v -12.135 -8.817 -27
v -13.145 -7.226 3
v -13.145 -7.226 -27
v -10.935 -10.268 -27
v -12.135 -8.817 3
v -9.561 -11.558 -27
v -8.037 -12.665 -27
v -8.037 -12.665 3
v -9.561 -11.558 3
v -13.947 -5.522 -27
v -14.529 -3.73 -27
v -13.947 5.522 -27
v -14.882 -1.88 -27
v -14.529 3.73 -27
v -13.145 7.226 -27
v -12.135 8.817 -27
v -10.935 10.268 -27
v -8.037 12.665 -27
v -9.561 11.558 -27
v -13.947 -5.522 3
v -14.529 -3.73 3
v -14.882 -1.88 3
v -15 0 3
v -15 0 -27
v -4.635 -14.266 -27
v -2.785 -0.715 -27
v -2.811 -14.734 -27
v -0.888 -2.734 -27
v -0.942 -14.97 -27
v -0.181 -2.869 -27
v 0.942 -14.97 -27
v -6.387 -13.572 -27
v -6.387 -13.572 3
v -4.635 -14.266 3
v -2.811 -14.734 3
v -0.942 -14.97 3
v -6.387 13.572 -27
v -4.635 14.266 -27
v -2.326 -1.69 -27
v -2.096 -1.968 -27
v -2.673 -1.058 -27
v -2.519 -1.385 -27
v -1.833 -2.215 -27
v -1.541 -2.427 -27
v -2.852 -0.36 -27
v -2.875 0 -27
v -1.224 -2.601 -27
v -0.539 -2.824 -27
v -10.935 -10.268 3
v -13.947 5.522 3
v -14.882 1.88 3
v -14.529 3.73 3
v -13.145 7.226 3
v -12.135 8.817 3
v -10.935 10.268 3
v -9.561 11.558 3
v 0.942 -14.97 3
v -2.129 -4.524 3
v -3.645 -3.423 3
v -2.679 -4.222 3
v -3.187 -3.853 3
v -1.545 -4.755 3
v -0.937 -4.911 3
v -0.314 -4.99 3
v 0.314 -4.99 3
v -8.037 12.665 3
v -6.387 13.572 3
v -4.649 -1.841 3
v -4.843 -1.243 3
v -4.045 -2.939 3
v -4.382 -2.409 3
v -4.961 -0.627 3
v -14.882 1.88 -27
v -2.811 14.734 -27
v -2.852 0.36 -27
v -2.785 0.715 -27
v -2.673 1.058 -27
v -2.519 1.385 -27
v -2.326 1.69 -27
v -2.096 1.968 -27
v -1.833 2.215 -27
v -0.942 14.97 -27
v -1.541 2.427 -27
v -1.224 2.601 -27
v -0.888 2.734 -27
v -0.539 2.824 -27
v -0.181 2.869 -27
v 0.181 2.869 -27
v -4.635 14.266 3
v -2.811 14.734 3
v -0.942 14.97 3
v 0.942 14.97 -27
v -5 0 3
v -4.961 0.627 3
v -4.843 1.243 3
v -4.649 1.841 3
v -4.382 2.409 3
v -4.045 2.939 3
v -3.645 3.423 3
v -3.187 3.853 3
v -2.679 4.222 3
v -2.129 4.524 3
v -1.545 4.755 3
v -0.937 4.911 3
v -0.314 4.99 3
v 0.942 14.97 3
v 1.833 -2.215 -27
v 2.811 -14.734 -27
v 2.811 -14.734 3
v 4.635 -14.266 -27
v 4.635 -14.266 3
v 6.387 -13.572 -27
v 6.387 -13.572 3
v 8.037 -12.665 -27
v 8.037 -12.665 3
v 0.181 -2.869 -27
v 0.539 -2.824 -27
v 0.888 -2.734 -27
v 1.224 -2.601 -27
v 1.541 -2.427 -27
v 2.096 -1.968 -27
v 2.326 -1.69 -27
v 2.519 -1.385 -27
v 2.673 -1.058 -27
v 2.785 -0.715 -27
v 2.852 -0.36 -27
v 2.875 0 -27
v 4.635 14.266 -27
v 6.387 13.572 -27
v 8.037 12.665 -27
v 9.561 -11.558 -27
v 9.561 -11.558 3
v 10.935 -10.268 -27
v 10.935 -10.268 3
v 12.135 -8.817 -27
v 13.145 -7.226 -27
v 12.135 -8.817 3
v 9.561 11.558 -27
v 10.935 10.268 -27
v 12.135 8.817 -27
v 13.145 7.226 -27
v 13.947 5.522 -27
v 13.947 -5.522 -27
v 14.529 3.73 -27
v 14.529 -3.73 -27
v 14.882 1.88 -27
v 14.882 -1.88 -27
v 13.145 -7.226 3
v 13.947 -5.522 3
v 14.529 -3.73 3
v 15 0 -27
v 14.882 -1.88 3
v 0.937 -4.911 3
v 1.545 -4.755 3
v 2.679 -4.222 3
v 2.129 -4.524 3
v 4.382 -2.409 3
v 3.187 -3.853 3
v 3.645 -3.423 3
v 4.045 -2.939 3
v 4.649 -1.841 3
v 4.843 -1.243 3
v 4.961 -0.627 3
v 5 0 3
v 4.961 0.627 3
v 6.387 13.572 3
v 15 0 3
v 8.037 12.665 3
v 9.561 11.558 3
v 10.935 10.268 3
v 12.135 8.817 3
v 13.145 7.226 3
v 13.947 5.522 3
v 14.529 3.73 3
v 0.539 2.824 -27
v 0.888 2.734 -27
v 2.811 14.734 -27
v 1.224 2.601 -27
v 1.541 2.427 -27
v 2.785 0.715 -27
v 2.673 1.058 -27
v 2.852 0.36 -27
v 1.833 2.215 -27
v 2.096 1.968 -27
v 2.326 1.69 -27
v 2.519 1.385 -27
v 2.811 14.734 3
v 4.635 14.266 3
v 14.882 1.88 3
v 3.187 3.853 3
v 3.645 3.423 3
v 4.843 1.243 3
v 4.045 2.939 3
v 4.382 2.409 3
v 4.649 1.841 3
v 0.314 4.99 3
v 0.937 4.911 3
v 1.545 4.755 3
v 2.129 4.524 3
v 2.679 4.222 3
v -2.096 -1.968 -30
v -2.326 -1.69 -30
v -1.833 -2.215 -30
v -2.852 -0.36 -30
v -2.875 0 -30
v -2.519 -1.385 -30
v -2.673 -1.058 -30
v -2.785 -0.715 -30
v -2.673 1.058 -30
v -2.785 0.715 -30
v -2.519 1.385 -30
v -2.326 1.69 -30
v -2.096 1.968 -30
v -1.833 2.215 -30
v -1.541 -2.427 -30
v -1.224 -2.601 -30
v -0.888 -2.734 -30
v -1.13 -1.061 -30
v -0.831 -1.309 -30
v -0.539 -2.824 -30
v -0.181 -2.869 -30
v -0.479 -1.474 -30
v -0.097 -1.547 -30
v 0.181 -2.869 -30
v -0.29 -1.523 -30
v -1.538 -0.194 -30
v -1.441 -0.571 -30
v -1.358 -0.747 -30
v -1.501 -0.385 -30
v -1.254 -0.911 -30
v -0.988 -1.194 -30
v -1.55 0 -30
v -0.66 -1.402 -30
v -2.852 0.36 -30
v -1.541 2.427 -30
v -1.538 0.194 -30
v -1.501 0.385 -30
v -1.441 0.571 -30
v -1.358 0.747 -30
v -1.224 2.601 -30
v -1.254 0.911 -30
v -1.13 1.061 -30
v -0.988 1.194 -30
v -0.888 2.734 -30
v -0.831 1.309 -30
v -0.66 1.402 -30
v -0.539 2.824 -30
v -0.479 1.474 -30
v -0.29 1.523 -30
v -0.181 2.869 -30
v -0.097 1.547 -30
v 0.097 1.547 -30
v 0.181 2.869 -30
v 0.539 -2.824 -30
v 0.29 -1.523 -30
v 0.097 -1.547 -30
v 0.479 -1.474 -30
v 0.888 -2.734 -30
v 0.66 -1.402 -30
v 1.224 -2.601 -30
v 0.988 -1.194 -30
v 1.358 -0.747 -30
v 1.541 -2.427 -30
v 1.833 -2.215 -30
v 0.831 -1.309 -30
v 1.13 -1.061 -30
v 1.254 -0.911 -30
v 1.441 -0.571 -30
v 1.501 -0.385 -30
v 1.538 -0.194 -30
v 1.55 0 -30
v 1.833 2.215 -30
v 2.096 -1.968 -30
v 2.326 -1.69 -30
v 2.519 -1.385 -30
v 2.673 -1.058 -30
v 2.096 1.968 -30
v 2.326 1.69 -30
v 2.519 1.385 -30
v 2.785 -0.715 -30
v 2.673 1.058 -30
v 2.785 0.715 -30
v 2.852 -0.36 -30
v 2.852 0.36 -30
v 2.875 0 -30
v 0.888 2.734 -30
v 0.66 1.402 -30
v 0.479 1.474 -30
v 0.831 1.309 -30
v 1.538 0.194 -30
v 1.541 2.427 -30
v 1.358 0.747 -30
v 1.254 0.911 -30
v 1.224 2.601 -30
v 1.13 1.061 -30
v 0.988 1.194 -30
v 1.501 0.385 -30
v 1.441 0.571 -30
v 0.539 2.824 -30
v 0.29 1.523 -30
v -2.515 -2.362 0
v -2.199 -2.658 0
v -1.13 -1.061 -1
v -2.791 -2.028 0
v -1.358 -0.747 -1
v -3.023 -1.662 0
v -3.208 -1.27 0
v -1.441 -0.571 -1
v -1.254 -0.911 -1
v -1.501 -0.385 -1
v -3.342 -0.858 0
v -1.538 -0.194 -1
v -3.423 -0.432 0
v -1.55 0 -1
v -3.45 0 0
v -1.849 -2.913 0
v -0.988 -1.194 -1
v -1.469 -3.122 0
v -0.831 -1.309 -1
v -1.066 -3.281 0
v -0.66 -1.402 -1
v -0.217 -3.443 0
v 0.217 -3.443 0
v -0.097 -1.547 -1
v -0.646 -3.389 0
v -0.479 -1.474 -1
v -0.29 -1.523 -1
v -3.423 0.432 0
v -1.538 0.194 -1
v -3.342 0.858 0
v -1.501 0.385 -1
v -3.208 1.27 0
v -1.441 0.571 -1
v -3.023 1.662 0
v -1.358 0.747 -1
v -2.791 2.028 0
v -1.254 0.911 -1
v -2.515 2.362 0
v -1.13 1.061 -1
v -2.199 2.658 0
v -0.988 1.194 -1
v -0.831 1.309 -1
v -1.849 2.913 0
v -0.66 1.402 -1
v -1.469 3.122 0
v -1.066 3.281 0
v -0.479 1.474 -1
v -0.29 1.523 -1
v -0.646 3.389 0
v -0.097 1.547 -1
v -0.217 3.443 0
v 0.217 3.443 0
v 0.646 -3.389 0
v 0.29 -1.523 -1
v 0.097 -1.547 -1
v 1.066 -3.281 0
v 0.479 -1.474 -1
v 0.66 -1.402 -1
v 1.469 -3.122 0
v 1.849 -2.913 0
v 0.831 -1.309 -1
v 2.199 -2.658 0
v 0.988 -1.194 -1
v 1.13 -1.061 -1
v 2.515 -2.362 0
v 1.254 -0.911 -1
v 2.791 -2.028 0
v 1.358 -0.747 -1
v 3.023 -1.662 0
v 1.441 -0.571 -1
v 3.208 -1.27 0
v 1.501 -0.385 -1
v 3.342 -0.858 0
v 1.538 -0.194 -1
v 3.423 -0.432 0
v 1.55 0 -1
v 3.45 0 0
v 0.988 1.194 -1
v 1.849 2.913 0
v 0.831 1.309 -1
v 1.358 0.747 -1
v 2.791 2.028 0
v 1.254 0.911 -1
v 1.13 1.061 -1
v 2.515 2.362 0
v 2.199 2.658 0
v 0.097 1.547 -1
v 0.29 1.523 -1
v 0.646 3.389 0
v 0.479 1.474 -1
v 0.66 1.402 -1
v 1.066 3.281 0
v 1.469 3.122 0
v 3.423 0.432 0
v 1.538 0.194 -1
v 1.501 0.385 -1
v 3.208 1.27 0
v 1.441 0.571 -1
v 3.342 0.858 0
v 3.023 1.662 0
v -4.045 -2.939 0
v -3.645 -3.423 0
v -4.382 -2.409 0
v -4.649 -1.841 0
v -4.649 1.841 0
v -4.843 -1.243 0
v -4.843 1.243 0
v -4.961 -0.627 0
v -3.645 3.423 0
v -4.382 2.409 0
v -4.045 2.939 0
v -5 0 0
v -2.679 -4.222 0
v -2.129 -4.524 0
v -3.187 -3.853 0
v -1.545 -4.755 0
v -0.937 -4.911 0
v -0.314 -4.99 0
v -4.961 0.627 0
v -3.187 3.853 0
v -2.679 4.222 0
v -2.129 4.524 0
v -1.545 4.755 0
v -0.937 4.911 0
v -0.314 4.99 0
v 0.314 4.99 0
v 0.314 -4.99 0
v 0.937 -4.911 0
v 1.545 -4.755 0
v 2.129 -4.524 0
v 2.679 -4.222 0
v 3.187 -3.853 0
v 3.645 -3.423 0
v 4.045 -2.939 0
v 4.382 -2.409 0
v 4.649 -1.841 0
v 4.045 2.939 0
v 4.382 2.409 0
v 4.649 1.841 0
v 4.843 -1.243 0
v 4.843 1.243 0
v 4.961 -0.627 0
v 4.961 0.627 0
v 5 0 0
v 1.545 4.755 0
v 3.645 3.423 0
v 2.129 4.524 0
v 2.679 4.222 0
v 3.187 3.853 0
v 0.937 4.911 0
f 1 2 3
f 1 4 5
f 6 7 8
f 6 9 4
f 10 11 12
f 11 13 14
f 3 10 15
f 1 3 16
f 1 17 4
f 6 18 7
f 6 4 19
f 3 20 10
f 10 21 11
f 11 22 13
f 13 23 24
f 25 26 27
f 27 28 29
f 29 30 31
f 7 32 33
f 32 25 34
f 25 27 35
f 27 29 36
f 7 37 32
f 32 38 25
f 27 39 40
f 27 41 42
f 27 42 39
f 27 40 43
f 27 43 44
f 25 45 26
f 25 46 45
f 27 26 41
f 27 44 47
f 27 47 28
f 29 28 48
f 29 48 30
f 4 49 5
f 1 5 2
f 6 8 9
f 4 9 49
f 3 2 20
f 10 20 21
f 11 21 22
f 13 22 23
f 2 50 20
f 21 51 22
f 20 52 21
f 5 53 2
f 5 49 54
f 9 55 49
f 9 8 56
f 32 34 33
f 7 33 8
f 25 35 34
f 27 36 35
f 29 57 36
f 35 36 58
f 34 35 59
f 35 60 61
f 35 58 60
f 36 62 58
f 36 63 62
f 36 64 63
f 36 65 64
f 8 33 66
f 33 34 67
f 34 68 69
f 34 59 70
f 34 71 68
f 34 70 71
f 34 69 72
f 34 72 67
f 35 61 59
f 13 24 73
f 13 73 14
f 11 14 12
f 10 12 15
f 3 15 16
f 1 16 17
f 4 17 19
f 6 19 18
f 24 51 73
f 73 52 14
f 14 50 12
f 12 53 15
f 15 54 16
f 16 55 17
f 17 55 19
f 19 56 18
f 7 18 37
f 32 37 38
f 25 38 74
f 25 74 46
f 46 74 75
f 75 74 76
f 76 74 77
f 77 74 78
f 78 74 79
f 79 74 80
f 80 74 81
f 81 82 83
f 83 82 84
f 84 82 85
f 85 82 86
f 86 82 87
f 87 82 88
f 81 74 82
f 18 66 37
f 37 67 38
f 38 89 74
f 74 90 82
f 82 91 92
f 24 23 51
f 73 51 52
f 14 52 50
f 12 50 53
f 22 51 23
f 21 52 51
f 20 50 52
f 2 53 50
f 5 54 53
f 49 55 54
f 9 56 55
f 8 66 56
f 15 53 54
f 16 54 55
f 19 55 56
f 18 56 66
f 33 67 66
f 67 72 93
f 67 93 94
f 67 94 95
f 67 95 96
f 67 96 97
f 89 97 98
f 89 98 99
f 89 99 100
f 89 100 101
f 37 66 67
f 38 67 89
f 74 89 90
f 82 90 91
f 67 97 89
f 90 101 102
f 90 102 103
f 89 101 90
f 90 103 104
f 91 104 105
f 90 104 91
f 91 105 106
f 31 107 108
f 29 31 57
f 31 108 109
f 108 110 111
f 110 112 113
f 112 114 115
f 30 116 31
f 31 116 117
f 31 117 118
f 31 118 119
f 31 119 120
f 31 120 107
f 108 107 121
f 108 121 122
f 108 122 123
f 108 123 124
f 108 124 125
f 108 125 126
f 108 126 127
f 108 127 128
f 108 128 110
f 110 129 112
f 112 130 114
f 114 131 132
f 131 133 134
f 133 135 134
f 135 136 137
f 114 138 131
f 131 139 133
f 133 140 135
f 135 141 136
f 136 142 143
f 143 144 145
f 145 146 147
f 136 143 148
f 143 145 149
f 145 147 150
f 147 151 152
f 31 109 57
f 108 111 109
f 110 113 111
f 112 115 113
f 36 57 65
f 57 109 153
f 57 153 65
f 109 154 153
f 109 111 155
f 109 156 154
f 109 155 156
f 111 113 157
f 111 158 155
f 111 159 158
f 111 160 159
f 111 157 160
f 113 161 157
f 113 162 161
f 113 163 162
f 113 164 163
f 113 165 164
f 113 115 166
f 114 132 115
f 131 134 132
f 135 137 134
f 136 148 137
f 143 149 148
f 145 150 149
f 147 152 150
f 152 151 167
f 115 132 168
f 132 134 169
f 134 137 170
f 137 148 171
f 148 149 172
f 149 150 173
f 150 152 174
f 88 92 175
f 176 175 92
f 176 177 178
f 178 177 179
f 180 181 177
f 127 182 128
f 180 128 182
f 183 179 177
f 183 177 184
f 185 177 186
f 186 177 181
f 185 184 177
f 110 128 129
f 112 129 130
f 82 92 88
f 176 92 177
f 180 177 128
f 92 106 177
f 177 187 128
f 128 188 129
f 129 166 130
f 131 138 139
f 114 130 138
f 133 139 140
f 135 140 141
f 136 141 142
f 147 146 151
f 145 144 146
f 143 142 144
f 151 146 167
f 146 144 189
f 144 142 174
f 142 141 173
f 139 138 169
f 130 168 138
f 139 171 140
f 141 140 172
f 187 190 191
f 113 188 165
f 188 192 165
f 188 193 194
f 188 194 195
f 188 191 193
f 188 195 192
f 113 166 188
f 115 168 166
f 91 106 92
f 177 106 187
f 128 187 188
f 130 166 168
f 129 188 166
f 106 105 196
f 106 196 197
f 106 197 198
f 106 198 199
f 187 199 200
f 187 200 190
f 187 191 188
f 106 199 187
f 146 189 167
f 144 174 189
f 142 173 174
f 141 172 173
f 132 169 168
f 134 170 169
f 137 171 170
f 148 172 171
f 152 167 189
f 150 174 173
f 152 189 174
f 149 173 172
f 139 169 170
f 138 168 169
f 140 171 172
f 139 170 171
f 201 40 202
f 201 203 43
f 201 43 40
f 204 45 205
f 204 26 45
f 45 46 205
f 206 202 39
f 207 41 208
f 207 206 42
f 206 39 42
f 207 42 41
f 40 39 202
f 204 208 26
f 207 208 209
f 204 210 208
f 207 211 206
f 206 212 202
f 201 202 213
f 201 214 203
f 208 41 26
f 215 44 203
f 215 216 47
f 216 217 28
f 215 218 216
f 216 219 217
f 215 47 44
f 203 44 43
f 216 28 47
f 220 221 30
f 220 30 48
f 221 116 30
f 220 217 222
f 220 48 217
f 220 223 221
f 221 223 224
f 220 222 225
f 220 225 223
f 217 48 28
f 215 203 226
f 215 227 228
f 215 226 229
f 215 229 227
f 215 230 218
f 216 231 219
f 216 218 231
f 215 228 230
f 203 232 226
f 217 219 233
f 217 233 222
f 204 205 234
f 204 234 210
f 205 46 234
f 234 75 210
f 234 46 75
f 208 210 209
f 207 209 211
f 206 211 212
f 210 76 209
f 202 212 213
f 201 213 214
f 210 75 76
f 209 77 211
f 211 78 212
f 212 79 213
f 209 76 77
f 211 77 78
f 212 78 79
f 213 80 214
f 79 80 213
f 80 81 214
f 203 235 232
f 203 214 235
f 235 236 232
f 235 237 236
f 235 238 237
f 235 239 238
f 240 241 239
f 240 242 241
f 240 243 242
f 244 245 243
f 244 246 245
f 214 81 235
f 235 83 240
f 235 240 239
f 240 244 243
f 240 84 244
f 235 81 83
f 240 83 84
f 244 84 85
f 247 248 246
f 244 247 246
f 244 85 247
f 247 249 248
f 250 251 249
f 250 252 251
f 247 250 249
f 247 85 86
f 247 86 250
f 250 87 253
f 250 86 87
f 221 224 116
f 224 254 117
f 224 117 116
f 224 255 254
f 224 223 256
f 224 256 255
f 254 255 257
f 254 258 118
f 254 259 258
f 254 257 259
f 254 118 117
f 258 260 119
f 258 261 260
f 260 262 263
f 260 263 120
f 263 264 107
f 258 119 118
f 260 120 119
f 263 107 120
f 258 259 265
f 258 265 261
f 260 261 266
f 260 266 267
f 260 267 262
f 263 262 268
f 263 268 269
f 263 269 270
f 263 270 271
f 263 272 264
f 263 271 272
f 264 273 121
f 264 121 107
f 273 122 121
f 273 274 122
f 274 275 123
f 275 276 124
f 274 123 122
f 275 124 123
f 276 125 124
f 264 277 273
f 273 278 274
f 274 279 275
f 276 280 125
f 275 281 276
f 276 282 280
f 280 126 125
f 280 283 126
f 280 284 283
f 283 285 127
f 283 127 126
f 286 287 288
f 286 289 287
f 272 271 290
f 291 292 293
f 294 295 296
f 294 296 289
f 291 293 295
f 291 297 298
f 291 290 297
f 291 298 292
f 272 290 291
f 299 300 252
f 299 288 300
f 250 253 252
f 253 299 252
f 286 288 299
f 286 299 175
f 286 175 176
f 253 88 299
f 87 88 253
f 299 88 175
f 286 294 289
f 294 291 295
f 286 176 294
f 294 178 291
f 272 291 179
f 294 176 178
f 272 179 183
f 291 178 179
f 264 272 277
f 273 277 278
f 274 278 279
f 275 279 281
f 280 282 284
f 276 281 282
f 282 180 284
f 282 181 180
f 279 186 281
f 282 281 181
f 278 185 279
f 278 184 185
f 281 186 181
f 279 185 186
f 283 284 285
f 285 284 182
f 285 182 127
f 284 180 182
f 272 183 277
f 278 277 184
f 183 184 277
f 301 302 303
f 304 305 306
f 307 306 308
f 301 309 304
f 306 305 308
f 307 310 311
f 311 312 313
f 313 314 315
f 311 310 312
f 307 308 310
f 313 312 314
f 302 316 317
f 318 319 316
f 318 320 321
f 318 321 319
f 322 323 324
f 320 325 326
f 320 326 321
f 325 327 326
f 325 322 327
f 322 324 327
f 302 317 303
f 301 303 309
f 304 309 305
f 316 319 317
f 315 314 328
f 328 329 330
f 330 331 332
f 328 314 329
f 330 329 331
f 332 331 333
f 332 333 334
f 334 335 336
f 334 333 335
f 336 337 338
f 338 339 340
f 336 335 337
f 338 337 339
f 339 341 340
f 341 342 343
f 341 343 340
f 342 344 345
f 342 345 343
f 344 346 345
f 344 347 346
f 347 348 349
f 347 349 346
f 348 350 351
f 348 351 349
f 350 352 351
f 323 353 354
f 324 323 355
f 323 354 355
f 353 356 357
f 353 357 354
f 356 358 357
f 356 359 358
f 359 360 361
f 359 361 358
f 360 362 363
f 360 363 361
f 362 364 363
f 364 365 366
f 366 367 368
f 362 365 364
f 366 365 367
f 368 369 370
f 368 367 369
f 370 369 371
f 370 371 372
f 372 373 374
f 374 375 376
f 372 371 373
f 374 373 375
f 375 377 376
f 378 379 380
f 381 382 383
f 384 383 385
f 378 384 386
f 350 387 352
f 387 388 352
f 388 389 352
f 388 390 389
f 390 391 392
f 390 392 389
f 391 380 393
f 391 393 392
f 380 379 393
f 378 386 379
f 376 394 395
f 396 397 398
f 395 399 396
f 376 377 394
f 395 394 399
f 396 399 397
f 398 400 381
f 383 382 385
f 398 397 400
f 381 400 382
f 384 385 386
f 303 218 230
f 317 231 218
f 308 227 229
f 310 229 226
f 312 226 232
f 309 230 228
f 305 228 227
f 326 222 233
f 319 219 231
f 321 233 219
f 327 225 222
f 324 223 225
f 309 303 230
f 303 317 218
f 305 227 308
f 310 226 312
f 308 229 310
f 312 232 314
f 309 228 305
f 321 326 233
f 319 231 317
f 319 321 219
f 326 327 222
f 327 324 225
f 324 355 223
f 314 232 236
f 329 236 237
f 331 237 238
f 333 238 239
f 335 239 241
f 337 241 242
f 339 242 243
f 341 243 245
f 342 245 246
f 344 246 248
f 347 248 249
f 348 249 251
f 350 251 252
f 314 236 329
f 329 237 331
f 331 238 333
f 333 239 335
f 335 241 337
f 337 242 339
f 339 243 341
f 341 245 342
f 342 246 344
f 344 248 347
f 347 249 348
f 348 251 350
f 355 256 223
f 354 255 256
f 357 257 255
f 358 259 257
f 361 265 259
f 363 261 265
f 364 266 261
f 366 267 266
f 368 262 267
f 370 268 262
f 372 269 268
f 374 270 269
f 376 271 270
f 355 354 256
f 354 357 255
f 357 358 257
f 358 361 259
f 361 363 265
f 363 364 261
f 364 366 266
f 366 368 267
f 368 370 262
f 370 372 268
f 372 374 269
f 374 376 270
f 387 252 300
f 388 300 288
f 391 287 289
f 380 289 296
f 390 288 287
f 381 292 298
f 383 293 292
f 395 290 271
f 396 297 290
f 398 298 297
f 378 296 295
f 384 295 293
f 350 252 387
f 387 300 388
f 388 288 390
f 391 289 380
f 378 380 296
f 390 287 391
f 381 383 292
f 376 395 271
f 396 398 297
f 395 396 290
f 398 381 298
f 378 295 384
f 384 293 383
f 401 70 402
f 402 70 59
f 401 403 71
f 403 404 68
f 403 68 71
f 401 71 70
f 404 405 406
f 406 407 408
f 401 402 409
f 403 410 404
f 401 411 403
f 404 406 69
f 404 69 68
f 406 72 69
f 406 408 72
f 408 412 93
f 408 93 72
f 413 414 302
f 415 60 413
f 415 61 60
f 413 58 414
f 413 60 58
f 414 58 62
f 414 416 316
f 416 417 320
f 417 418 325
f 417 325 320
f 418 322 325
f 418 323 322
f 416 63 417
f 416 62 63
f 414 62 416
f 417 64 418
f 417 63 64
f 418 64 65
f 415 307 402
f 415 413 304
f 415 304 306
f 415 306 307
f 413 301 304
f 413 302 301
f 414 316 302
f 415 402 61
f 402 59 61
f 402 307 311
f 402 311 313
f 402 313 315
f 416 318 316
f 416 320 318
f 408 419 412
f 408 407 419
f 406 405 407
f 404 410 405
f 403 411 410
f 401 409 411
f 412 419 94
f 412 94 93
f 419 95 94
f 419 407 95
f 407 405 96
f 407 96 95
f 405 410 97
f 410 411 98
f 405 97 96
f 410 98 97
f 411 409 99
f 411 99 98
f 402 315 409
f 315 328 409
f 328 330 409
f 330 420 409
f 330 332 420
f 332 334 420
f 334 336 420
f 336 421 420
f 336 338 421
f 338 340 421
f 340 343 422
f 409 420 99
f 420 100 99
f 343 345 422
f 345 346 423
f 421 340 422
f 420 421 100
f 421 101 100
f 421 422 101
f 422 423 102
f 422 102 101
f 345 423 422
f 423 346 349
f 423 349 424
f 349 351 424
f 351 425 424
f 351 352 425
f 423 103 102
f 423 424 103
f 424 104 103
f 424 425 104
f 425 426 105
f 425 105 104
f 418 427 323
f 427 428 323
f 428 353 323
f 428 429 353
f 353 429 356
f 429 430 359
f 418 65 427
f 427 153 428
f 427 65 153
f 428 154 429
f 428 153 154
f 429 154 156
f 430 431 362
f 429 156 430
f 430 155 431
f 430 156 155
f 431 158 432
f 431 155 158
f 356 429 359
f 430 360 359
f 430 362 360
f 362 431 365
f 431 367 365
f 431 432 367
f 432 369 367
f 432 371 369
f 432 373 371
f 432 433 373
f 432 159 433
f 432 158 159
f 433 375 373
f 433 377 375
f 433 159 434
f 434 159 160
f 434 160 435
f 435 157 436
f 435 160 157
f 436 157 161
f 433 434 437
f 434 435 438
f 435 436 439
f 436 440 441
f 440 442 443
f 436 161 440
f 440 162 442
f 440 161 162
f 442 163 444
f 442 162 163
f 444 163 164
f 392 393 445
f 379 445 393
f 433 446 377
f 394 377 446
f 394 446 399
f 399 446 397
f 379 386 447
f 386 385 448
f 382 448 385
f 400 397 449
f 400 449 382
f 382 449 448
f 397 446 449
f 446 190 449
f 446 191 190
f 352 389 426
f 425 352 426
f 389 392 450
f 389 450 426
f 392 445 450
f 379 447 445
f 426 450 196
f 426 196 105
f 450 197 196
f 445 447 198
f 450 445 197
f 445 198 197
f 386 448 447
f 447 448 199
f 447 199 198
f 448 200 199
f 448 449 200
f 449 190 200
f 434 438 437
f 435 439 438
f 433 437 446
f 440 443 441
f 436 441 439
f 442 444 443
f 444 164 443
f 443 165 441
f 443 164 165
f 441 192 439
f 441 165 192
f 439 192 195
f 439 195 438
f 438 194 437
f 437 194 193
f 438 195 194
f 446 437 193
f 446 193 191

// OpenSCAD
$fn = 50;

difference() {
	union() {
		translate(v = [0, 0, -27.0]) {
			cylinder(h = 30, r = 15.0);
		}
		#translate(v = [0, 0, -30.0]) {
			cylinder(h = 30, r = 2.875);
		}
	}
	union() {
		translate(v = [0, 0, 0]) {
			rotate(a = [0, 0, 0]) {
				difference() {
					union() {
						translate(v = [0, 0, -30.0]) {
							cylinder(h = 30, r = 1.25);
						}
						translate(v = [0, 0, -1.0]) {
							cylinder(h = 1.0, r1 = 1.55, r2 = 3.45);
						}
						translate(v = [0, 0, -30.0]) {
							cylinder(h = 30, r = 1.55);
						}
						translate(v = [0, 0, -30.0]) {
							cylinder(h = 30, r = 1.25);
						}
					}
					union();
				}
			}
		}
		#cylinder(h = 3, r = 5.0);
	}
}
